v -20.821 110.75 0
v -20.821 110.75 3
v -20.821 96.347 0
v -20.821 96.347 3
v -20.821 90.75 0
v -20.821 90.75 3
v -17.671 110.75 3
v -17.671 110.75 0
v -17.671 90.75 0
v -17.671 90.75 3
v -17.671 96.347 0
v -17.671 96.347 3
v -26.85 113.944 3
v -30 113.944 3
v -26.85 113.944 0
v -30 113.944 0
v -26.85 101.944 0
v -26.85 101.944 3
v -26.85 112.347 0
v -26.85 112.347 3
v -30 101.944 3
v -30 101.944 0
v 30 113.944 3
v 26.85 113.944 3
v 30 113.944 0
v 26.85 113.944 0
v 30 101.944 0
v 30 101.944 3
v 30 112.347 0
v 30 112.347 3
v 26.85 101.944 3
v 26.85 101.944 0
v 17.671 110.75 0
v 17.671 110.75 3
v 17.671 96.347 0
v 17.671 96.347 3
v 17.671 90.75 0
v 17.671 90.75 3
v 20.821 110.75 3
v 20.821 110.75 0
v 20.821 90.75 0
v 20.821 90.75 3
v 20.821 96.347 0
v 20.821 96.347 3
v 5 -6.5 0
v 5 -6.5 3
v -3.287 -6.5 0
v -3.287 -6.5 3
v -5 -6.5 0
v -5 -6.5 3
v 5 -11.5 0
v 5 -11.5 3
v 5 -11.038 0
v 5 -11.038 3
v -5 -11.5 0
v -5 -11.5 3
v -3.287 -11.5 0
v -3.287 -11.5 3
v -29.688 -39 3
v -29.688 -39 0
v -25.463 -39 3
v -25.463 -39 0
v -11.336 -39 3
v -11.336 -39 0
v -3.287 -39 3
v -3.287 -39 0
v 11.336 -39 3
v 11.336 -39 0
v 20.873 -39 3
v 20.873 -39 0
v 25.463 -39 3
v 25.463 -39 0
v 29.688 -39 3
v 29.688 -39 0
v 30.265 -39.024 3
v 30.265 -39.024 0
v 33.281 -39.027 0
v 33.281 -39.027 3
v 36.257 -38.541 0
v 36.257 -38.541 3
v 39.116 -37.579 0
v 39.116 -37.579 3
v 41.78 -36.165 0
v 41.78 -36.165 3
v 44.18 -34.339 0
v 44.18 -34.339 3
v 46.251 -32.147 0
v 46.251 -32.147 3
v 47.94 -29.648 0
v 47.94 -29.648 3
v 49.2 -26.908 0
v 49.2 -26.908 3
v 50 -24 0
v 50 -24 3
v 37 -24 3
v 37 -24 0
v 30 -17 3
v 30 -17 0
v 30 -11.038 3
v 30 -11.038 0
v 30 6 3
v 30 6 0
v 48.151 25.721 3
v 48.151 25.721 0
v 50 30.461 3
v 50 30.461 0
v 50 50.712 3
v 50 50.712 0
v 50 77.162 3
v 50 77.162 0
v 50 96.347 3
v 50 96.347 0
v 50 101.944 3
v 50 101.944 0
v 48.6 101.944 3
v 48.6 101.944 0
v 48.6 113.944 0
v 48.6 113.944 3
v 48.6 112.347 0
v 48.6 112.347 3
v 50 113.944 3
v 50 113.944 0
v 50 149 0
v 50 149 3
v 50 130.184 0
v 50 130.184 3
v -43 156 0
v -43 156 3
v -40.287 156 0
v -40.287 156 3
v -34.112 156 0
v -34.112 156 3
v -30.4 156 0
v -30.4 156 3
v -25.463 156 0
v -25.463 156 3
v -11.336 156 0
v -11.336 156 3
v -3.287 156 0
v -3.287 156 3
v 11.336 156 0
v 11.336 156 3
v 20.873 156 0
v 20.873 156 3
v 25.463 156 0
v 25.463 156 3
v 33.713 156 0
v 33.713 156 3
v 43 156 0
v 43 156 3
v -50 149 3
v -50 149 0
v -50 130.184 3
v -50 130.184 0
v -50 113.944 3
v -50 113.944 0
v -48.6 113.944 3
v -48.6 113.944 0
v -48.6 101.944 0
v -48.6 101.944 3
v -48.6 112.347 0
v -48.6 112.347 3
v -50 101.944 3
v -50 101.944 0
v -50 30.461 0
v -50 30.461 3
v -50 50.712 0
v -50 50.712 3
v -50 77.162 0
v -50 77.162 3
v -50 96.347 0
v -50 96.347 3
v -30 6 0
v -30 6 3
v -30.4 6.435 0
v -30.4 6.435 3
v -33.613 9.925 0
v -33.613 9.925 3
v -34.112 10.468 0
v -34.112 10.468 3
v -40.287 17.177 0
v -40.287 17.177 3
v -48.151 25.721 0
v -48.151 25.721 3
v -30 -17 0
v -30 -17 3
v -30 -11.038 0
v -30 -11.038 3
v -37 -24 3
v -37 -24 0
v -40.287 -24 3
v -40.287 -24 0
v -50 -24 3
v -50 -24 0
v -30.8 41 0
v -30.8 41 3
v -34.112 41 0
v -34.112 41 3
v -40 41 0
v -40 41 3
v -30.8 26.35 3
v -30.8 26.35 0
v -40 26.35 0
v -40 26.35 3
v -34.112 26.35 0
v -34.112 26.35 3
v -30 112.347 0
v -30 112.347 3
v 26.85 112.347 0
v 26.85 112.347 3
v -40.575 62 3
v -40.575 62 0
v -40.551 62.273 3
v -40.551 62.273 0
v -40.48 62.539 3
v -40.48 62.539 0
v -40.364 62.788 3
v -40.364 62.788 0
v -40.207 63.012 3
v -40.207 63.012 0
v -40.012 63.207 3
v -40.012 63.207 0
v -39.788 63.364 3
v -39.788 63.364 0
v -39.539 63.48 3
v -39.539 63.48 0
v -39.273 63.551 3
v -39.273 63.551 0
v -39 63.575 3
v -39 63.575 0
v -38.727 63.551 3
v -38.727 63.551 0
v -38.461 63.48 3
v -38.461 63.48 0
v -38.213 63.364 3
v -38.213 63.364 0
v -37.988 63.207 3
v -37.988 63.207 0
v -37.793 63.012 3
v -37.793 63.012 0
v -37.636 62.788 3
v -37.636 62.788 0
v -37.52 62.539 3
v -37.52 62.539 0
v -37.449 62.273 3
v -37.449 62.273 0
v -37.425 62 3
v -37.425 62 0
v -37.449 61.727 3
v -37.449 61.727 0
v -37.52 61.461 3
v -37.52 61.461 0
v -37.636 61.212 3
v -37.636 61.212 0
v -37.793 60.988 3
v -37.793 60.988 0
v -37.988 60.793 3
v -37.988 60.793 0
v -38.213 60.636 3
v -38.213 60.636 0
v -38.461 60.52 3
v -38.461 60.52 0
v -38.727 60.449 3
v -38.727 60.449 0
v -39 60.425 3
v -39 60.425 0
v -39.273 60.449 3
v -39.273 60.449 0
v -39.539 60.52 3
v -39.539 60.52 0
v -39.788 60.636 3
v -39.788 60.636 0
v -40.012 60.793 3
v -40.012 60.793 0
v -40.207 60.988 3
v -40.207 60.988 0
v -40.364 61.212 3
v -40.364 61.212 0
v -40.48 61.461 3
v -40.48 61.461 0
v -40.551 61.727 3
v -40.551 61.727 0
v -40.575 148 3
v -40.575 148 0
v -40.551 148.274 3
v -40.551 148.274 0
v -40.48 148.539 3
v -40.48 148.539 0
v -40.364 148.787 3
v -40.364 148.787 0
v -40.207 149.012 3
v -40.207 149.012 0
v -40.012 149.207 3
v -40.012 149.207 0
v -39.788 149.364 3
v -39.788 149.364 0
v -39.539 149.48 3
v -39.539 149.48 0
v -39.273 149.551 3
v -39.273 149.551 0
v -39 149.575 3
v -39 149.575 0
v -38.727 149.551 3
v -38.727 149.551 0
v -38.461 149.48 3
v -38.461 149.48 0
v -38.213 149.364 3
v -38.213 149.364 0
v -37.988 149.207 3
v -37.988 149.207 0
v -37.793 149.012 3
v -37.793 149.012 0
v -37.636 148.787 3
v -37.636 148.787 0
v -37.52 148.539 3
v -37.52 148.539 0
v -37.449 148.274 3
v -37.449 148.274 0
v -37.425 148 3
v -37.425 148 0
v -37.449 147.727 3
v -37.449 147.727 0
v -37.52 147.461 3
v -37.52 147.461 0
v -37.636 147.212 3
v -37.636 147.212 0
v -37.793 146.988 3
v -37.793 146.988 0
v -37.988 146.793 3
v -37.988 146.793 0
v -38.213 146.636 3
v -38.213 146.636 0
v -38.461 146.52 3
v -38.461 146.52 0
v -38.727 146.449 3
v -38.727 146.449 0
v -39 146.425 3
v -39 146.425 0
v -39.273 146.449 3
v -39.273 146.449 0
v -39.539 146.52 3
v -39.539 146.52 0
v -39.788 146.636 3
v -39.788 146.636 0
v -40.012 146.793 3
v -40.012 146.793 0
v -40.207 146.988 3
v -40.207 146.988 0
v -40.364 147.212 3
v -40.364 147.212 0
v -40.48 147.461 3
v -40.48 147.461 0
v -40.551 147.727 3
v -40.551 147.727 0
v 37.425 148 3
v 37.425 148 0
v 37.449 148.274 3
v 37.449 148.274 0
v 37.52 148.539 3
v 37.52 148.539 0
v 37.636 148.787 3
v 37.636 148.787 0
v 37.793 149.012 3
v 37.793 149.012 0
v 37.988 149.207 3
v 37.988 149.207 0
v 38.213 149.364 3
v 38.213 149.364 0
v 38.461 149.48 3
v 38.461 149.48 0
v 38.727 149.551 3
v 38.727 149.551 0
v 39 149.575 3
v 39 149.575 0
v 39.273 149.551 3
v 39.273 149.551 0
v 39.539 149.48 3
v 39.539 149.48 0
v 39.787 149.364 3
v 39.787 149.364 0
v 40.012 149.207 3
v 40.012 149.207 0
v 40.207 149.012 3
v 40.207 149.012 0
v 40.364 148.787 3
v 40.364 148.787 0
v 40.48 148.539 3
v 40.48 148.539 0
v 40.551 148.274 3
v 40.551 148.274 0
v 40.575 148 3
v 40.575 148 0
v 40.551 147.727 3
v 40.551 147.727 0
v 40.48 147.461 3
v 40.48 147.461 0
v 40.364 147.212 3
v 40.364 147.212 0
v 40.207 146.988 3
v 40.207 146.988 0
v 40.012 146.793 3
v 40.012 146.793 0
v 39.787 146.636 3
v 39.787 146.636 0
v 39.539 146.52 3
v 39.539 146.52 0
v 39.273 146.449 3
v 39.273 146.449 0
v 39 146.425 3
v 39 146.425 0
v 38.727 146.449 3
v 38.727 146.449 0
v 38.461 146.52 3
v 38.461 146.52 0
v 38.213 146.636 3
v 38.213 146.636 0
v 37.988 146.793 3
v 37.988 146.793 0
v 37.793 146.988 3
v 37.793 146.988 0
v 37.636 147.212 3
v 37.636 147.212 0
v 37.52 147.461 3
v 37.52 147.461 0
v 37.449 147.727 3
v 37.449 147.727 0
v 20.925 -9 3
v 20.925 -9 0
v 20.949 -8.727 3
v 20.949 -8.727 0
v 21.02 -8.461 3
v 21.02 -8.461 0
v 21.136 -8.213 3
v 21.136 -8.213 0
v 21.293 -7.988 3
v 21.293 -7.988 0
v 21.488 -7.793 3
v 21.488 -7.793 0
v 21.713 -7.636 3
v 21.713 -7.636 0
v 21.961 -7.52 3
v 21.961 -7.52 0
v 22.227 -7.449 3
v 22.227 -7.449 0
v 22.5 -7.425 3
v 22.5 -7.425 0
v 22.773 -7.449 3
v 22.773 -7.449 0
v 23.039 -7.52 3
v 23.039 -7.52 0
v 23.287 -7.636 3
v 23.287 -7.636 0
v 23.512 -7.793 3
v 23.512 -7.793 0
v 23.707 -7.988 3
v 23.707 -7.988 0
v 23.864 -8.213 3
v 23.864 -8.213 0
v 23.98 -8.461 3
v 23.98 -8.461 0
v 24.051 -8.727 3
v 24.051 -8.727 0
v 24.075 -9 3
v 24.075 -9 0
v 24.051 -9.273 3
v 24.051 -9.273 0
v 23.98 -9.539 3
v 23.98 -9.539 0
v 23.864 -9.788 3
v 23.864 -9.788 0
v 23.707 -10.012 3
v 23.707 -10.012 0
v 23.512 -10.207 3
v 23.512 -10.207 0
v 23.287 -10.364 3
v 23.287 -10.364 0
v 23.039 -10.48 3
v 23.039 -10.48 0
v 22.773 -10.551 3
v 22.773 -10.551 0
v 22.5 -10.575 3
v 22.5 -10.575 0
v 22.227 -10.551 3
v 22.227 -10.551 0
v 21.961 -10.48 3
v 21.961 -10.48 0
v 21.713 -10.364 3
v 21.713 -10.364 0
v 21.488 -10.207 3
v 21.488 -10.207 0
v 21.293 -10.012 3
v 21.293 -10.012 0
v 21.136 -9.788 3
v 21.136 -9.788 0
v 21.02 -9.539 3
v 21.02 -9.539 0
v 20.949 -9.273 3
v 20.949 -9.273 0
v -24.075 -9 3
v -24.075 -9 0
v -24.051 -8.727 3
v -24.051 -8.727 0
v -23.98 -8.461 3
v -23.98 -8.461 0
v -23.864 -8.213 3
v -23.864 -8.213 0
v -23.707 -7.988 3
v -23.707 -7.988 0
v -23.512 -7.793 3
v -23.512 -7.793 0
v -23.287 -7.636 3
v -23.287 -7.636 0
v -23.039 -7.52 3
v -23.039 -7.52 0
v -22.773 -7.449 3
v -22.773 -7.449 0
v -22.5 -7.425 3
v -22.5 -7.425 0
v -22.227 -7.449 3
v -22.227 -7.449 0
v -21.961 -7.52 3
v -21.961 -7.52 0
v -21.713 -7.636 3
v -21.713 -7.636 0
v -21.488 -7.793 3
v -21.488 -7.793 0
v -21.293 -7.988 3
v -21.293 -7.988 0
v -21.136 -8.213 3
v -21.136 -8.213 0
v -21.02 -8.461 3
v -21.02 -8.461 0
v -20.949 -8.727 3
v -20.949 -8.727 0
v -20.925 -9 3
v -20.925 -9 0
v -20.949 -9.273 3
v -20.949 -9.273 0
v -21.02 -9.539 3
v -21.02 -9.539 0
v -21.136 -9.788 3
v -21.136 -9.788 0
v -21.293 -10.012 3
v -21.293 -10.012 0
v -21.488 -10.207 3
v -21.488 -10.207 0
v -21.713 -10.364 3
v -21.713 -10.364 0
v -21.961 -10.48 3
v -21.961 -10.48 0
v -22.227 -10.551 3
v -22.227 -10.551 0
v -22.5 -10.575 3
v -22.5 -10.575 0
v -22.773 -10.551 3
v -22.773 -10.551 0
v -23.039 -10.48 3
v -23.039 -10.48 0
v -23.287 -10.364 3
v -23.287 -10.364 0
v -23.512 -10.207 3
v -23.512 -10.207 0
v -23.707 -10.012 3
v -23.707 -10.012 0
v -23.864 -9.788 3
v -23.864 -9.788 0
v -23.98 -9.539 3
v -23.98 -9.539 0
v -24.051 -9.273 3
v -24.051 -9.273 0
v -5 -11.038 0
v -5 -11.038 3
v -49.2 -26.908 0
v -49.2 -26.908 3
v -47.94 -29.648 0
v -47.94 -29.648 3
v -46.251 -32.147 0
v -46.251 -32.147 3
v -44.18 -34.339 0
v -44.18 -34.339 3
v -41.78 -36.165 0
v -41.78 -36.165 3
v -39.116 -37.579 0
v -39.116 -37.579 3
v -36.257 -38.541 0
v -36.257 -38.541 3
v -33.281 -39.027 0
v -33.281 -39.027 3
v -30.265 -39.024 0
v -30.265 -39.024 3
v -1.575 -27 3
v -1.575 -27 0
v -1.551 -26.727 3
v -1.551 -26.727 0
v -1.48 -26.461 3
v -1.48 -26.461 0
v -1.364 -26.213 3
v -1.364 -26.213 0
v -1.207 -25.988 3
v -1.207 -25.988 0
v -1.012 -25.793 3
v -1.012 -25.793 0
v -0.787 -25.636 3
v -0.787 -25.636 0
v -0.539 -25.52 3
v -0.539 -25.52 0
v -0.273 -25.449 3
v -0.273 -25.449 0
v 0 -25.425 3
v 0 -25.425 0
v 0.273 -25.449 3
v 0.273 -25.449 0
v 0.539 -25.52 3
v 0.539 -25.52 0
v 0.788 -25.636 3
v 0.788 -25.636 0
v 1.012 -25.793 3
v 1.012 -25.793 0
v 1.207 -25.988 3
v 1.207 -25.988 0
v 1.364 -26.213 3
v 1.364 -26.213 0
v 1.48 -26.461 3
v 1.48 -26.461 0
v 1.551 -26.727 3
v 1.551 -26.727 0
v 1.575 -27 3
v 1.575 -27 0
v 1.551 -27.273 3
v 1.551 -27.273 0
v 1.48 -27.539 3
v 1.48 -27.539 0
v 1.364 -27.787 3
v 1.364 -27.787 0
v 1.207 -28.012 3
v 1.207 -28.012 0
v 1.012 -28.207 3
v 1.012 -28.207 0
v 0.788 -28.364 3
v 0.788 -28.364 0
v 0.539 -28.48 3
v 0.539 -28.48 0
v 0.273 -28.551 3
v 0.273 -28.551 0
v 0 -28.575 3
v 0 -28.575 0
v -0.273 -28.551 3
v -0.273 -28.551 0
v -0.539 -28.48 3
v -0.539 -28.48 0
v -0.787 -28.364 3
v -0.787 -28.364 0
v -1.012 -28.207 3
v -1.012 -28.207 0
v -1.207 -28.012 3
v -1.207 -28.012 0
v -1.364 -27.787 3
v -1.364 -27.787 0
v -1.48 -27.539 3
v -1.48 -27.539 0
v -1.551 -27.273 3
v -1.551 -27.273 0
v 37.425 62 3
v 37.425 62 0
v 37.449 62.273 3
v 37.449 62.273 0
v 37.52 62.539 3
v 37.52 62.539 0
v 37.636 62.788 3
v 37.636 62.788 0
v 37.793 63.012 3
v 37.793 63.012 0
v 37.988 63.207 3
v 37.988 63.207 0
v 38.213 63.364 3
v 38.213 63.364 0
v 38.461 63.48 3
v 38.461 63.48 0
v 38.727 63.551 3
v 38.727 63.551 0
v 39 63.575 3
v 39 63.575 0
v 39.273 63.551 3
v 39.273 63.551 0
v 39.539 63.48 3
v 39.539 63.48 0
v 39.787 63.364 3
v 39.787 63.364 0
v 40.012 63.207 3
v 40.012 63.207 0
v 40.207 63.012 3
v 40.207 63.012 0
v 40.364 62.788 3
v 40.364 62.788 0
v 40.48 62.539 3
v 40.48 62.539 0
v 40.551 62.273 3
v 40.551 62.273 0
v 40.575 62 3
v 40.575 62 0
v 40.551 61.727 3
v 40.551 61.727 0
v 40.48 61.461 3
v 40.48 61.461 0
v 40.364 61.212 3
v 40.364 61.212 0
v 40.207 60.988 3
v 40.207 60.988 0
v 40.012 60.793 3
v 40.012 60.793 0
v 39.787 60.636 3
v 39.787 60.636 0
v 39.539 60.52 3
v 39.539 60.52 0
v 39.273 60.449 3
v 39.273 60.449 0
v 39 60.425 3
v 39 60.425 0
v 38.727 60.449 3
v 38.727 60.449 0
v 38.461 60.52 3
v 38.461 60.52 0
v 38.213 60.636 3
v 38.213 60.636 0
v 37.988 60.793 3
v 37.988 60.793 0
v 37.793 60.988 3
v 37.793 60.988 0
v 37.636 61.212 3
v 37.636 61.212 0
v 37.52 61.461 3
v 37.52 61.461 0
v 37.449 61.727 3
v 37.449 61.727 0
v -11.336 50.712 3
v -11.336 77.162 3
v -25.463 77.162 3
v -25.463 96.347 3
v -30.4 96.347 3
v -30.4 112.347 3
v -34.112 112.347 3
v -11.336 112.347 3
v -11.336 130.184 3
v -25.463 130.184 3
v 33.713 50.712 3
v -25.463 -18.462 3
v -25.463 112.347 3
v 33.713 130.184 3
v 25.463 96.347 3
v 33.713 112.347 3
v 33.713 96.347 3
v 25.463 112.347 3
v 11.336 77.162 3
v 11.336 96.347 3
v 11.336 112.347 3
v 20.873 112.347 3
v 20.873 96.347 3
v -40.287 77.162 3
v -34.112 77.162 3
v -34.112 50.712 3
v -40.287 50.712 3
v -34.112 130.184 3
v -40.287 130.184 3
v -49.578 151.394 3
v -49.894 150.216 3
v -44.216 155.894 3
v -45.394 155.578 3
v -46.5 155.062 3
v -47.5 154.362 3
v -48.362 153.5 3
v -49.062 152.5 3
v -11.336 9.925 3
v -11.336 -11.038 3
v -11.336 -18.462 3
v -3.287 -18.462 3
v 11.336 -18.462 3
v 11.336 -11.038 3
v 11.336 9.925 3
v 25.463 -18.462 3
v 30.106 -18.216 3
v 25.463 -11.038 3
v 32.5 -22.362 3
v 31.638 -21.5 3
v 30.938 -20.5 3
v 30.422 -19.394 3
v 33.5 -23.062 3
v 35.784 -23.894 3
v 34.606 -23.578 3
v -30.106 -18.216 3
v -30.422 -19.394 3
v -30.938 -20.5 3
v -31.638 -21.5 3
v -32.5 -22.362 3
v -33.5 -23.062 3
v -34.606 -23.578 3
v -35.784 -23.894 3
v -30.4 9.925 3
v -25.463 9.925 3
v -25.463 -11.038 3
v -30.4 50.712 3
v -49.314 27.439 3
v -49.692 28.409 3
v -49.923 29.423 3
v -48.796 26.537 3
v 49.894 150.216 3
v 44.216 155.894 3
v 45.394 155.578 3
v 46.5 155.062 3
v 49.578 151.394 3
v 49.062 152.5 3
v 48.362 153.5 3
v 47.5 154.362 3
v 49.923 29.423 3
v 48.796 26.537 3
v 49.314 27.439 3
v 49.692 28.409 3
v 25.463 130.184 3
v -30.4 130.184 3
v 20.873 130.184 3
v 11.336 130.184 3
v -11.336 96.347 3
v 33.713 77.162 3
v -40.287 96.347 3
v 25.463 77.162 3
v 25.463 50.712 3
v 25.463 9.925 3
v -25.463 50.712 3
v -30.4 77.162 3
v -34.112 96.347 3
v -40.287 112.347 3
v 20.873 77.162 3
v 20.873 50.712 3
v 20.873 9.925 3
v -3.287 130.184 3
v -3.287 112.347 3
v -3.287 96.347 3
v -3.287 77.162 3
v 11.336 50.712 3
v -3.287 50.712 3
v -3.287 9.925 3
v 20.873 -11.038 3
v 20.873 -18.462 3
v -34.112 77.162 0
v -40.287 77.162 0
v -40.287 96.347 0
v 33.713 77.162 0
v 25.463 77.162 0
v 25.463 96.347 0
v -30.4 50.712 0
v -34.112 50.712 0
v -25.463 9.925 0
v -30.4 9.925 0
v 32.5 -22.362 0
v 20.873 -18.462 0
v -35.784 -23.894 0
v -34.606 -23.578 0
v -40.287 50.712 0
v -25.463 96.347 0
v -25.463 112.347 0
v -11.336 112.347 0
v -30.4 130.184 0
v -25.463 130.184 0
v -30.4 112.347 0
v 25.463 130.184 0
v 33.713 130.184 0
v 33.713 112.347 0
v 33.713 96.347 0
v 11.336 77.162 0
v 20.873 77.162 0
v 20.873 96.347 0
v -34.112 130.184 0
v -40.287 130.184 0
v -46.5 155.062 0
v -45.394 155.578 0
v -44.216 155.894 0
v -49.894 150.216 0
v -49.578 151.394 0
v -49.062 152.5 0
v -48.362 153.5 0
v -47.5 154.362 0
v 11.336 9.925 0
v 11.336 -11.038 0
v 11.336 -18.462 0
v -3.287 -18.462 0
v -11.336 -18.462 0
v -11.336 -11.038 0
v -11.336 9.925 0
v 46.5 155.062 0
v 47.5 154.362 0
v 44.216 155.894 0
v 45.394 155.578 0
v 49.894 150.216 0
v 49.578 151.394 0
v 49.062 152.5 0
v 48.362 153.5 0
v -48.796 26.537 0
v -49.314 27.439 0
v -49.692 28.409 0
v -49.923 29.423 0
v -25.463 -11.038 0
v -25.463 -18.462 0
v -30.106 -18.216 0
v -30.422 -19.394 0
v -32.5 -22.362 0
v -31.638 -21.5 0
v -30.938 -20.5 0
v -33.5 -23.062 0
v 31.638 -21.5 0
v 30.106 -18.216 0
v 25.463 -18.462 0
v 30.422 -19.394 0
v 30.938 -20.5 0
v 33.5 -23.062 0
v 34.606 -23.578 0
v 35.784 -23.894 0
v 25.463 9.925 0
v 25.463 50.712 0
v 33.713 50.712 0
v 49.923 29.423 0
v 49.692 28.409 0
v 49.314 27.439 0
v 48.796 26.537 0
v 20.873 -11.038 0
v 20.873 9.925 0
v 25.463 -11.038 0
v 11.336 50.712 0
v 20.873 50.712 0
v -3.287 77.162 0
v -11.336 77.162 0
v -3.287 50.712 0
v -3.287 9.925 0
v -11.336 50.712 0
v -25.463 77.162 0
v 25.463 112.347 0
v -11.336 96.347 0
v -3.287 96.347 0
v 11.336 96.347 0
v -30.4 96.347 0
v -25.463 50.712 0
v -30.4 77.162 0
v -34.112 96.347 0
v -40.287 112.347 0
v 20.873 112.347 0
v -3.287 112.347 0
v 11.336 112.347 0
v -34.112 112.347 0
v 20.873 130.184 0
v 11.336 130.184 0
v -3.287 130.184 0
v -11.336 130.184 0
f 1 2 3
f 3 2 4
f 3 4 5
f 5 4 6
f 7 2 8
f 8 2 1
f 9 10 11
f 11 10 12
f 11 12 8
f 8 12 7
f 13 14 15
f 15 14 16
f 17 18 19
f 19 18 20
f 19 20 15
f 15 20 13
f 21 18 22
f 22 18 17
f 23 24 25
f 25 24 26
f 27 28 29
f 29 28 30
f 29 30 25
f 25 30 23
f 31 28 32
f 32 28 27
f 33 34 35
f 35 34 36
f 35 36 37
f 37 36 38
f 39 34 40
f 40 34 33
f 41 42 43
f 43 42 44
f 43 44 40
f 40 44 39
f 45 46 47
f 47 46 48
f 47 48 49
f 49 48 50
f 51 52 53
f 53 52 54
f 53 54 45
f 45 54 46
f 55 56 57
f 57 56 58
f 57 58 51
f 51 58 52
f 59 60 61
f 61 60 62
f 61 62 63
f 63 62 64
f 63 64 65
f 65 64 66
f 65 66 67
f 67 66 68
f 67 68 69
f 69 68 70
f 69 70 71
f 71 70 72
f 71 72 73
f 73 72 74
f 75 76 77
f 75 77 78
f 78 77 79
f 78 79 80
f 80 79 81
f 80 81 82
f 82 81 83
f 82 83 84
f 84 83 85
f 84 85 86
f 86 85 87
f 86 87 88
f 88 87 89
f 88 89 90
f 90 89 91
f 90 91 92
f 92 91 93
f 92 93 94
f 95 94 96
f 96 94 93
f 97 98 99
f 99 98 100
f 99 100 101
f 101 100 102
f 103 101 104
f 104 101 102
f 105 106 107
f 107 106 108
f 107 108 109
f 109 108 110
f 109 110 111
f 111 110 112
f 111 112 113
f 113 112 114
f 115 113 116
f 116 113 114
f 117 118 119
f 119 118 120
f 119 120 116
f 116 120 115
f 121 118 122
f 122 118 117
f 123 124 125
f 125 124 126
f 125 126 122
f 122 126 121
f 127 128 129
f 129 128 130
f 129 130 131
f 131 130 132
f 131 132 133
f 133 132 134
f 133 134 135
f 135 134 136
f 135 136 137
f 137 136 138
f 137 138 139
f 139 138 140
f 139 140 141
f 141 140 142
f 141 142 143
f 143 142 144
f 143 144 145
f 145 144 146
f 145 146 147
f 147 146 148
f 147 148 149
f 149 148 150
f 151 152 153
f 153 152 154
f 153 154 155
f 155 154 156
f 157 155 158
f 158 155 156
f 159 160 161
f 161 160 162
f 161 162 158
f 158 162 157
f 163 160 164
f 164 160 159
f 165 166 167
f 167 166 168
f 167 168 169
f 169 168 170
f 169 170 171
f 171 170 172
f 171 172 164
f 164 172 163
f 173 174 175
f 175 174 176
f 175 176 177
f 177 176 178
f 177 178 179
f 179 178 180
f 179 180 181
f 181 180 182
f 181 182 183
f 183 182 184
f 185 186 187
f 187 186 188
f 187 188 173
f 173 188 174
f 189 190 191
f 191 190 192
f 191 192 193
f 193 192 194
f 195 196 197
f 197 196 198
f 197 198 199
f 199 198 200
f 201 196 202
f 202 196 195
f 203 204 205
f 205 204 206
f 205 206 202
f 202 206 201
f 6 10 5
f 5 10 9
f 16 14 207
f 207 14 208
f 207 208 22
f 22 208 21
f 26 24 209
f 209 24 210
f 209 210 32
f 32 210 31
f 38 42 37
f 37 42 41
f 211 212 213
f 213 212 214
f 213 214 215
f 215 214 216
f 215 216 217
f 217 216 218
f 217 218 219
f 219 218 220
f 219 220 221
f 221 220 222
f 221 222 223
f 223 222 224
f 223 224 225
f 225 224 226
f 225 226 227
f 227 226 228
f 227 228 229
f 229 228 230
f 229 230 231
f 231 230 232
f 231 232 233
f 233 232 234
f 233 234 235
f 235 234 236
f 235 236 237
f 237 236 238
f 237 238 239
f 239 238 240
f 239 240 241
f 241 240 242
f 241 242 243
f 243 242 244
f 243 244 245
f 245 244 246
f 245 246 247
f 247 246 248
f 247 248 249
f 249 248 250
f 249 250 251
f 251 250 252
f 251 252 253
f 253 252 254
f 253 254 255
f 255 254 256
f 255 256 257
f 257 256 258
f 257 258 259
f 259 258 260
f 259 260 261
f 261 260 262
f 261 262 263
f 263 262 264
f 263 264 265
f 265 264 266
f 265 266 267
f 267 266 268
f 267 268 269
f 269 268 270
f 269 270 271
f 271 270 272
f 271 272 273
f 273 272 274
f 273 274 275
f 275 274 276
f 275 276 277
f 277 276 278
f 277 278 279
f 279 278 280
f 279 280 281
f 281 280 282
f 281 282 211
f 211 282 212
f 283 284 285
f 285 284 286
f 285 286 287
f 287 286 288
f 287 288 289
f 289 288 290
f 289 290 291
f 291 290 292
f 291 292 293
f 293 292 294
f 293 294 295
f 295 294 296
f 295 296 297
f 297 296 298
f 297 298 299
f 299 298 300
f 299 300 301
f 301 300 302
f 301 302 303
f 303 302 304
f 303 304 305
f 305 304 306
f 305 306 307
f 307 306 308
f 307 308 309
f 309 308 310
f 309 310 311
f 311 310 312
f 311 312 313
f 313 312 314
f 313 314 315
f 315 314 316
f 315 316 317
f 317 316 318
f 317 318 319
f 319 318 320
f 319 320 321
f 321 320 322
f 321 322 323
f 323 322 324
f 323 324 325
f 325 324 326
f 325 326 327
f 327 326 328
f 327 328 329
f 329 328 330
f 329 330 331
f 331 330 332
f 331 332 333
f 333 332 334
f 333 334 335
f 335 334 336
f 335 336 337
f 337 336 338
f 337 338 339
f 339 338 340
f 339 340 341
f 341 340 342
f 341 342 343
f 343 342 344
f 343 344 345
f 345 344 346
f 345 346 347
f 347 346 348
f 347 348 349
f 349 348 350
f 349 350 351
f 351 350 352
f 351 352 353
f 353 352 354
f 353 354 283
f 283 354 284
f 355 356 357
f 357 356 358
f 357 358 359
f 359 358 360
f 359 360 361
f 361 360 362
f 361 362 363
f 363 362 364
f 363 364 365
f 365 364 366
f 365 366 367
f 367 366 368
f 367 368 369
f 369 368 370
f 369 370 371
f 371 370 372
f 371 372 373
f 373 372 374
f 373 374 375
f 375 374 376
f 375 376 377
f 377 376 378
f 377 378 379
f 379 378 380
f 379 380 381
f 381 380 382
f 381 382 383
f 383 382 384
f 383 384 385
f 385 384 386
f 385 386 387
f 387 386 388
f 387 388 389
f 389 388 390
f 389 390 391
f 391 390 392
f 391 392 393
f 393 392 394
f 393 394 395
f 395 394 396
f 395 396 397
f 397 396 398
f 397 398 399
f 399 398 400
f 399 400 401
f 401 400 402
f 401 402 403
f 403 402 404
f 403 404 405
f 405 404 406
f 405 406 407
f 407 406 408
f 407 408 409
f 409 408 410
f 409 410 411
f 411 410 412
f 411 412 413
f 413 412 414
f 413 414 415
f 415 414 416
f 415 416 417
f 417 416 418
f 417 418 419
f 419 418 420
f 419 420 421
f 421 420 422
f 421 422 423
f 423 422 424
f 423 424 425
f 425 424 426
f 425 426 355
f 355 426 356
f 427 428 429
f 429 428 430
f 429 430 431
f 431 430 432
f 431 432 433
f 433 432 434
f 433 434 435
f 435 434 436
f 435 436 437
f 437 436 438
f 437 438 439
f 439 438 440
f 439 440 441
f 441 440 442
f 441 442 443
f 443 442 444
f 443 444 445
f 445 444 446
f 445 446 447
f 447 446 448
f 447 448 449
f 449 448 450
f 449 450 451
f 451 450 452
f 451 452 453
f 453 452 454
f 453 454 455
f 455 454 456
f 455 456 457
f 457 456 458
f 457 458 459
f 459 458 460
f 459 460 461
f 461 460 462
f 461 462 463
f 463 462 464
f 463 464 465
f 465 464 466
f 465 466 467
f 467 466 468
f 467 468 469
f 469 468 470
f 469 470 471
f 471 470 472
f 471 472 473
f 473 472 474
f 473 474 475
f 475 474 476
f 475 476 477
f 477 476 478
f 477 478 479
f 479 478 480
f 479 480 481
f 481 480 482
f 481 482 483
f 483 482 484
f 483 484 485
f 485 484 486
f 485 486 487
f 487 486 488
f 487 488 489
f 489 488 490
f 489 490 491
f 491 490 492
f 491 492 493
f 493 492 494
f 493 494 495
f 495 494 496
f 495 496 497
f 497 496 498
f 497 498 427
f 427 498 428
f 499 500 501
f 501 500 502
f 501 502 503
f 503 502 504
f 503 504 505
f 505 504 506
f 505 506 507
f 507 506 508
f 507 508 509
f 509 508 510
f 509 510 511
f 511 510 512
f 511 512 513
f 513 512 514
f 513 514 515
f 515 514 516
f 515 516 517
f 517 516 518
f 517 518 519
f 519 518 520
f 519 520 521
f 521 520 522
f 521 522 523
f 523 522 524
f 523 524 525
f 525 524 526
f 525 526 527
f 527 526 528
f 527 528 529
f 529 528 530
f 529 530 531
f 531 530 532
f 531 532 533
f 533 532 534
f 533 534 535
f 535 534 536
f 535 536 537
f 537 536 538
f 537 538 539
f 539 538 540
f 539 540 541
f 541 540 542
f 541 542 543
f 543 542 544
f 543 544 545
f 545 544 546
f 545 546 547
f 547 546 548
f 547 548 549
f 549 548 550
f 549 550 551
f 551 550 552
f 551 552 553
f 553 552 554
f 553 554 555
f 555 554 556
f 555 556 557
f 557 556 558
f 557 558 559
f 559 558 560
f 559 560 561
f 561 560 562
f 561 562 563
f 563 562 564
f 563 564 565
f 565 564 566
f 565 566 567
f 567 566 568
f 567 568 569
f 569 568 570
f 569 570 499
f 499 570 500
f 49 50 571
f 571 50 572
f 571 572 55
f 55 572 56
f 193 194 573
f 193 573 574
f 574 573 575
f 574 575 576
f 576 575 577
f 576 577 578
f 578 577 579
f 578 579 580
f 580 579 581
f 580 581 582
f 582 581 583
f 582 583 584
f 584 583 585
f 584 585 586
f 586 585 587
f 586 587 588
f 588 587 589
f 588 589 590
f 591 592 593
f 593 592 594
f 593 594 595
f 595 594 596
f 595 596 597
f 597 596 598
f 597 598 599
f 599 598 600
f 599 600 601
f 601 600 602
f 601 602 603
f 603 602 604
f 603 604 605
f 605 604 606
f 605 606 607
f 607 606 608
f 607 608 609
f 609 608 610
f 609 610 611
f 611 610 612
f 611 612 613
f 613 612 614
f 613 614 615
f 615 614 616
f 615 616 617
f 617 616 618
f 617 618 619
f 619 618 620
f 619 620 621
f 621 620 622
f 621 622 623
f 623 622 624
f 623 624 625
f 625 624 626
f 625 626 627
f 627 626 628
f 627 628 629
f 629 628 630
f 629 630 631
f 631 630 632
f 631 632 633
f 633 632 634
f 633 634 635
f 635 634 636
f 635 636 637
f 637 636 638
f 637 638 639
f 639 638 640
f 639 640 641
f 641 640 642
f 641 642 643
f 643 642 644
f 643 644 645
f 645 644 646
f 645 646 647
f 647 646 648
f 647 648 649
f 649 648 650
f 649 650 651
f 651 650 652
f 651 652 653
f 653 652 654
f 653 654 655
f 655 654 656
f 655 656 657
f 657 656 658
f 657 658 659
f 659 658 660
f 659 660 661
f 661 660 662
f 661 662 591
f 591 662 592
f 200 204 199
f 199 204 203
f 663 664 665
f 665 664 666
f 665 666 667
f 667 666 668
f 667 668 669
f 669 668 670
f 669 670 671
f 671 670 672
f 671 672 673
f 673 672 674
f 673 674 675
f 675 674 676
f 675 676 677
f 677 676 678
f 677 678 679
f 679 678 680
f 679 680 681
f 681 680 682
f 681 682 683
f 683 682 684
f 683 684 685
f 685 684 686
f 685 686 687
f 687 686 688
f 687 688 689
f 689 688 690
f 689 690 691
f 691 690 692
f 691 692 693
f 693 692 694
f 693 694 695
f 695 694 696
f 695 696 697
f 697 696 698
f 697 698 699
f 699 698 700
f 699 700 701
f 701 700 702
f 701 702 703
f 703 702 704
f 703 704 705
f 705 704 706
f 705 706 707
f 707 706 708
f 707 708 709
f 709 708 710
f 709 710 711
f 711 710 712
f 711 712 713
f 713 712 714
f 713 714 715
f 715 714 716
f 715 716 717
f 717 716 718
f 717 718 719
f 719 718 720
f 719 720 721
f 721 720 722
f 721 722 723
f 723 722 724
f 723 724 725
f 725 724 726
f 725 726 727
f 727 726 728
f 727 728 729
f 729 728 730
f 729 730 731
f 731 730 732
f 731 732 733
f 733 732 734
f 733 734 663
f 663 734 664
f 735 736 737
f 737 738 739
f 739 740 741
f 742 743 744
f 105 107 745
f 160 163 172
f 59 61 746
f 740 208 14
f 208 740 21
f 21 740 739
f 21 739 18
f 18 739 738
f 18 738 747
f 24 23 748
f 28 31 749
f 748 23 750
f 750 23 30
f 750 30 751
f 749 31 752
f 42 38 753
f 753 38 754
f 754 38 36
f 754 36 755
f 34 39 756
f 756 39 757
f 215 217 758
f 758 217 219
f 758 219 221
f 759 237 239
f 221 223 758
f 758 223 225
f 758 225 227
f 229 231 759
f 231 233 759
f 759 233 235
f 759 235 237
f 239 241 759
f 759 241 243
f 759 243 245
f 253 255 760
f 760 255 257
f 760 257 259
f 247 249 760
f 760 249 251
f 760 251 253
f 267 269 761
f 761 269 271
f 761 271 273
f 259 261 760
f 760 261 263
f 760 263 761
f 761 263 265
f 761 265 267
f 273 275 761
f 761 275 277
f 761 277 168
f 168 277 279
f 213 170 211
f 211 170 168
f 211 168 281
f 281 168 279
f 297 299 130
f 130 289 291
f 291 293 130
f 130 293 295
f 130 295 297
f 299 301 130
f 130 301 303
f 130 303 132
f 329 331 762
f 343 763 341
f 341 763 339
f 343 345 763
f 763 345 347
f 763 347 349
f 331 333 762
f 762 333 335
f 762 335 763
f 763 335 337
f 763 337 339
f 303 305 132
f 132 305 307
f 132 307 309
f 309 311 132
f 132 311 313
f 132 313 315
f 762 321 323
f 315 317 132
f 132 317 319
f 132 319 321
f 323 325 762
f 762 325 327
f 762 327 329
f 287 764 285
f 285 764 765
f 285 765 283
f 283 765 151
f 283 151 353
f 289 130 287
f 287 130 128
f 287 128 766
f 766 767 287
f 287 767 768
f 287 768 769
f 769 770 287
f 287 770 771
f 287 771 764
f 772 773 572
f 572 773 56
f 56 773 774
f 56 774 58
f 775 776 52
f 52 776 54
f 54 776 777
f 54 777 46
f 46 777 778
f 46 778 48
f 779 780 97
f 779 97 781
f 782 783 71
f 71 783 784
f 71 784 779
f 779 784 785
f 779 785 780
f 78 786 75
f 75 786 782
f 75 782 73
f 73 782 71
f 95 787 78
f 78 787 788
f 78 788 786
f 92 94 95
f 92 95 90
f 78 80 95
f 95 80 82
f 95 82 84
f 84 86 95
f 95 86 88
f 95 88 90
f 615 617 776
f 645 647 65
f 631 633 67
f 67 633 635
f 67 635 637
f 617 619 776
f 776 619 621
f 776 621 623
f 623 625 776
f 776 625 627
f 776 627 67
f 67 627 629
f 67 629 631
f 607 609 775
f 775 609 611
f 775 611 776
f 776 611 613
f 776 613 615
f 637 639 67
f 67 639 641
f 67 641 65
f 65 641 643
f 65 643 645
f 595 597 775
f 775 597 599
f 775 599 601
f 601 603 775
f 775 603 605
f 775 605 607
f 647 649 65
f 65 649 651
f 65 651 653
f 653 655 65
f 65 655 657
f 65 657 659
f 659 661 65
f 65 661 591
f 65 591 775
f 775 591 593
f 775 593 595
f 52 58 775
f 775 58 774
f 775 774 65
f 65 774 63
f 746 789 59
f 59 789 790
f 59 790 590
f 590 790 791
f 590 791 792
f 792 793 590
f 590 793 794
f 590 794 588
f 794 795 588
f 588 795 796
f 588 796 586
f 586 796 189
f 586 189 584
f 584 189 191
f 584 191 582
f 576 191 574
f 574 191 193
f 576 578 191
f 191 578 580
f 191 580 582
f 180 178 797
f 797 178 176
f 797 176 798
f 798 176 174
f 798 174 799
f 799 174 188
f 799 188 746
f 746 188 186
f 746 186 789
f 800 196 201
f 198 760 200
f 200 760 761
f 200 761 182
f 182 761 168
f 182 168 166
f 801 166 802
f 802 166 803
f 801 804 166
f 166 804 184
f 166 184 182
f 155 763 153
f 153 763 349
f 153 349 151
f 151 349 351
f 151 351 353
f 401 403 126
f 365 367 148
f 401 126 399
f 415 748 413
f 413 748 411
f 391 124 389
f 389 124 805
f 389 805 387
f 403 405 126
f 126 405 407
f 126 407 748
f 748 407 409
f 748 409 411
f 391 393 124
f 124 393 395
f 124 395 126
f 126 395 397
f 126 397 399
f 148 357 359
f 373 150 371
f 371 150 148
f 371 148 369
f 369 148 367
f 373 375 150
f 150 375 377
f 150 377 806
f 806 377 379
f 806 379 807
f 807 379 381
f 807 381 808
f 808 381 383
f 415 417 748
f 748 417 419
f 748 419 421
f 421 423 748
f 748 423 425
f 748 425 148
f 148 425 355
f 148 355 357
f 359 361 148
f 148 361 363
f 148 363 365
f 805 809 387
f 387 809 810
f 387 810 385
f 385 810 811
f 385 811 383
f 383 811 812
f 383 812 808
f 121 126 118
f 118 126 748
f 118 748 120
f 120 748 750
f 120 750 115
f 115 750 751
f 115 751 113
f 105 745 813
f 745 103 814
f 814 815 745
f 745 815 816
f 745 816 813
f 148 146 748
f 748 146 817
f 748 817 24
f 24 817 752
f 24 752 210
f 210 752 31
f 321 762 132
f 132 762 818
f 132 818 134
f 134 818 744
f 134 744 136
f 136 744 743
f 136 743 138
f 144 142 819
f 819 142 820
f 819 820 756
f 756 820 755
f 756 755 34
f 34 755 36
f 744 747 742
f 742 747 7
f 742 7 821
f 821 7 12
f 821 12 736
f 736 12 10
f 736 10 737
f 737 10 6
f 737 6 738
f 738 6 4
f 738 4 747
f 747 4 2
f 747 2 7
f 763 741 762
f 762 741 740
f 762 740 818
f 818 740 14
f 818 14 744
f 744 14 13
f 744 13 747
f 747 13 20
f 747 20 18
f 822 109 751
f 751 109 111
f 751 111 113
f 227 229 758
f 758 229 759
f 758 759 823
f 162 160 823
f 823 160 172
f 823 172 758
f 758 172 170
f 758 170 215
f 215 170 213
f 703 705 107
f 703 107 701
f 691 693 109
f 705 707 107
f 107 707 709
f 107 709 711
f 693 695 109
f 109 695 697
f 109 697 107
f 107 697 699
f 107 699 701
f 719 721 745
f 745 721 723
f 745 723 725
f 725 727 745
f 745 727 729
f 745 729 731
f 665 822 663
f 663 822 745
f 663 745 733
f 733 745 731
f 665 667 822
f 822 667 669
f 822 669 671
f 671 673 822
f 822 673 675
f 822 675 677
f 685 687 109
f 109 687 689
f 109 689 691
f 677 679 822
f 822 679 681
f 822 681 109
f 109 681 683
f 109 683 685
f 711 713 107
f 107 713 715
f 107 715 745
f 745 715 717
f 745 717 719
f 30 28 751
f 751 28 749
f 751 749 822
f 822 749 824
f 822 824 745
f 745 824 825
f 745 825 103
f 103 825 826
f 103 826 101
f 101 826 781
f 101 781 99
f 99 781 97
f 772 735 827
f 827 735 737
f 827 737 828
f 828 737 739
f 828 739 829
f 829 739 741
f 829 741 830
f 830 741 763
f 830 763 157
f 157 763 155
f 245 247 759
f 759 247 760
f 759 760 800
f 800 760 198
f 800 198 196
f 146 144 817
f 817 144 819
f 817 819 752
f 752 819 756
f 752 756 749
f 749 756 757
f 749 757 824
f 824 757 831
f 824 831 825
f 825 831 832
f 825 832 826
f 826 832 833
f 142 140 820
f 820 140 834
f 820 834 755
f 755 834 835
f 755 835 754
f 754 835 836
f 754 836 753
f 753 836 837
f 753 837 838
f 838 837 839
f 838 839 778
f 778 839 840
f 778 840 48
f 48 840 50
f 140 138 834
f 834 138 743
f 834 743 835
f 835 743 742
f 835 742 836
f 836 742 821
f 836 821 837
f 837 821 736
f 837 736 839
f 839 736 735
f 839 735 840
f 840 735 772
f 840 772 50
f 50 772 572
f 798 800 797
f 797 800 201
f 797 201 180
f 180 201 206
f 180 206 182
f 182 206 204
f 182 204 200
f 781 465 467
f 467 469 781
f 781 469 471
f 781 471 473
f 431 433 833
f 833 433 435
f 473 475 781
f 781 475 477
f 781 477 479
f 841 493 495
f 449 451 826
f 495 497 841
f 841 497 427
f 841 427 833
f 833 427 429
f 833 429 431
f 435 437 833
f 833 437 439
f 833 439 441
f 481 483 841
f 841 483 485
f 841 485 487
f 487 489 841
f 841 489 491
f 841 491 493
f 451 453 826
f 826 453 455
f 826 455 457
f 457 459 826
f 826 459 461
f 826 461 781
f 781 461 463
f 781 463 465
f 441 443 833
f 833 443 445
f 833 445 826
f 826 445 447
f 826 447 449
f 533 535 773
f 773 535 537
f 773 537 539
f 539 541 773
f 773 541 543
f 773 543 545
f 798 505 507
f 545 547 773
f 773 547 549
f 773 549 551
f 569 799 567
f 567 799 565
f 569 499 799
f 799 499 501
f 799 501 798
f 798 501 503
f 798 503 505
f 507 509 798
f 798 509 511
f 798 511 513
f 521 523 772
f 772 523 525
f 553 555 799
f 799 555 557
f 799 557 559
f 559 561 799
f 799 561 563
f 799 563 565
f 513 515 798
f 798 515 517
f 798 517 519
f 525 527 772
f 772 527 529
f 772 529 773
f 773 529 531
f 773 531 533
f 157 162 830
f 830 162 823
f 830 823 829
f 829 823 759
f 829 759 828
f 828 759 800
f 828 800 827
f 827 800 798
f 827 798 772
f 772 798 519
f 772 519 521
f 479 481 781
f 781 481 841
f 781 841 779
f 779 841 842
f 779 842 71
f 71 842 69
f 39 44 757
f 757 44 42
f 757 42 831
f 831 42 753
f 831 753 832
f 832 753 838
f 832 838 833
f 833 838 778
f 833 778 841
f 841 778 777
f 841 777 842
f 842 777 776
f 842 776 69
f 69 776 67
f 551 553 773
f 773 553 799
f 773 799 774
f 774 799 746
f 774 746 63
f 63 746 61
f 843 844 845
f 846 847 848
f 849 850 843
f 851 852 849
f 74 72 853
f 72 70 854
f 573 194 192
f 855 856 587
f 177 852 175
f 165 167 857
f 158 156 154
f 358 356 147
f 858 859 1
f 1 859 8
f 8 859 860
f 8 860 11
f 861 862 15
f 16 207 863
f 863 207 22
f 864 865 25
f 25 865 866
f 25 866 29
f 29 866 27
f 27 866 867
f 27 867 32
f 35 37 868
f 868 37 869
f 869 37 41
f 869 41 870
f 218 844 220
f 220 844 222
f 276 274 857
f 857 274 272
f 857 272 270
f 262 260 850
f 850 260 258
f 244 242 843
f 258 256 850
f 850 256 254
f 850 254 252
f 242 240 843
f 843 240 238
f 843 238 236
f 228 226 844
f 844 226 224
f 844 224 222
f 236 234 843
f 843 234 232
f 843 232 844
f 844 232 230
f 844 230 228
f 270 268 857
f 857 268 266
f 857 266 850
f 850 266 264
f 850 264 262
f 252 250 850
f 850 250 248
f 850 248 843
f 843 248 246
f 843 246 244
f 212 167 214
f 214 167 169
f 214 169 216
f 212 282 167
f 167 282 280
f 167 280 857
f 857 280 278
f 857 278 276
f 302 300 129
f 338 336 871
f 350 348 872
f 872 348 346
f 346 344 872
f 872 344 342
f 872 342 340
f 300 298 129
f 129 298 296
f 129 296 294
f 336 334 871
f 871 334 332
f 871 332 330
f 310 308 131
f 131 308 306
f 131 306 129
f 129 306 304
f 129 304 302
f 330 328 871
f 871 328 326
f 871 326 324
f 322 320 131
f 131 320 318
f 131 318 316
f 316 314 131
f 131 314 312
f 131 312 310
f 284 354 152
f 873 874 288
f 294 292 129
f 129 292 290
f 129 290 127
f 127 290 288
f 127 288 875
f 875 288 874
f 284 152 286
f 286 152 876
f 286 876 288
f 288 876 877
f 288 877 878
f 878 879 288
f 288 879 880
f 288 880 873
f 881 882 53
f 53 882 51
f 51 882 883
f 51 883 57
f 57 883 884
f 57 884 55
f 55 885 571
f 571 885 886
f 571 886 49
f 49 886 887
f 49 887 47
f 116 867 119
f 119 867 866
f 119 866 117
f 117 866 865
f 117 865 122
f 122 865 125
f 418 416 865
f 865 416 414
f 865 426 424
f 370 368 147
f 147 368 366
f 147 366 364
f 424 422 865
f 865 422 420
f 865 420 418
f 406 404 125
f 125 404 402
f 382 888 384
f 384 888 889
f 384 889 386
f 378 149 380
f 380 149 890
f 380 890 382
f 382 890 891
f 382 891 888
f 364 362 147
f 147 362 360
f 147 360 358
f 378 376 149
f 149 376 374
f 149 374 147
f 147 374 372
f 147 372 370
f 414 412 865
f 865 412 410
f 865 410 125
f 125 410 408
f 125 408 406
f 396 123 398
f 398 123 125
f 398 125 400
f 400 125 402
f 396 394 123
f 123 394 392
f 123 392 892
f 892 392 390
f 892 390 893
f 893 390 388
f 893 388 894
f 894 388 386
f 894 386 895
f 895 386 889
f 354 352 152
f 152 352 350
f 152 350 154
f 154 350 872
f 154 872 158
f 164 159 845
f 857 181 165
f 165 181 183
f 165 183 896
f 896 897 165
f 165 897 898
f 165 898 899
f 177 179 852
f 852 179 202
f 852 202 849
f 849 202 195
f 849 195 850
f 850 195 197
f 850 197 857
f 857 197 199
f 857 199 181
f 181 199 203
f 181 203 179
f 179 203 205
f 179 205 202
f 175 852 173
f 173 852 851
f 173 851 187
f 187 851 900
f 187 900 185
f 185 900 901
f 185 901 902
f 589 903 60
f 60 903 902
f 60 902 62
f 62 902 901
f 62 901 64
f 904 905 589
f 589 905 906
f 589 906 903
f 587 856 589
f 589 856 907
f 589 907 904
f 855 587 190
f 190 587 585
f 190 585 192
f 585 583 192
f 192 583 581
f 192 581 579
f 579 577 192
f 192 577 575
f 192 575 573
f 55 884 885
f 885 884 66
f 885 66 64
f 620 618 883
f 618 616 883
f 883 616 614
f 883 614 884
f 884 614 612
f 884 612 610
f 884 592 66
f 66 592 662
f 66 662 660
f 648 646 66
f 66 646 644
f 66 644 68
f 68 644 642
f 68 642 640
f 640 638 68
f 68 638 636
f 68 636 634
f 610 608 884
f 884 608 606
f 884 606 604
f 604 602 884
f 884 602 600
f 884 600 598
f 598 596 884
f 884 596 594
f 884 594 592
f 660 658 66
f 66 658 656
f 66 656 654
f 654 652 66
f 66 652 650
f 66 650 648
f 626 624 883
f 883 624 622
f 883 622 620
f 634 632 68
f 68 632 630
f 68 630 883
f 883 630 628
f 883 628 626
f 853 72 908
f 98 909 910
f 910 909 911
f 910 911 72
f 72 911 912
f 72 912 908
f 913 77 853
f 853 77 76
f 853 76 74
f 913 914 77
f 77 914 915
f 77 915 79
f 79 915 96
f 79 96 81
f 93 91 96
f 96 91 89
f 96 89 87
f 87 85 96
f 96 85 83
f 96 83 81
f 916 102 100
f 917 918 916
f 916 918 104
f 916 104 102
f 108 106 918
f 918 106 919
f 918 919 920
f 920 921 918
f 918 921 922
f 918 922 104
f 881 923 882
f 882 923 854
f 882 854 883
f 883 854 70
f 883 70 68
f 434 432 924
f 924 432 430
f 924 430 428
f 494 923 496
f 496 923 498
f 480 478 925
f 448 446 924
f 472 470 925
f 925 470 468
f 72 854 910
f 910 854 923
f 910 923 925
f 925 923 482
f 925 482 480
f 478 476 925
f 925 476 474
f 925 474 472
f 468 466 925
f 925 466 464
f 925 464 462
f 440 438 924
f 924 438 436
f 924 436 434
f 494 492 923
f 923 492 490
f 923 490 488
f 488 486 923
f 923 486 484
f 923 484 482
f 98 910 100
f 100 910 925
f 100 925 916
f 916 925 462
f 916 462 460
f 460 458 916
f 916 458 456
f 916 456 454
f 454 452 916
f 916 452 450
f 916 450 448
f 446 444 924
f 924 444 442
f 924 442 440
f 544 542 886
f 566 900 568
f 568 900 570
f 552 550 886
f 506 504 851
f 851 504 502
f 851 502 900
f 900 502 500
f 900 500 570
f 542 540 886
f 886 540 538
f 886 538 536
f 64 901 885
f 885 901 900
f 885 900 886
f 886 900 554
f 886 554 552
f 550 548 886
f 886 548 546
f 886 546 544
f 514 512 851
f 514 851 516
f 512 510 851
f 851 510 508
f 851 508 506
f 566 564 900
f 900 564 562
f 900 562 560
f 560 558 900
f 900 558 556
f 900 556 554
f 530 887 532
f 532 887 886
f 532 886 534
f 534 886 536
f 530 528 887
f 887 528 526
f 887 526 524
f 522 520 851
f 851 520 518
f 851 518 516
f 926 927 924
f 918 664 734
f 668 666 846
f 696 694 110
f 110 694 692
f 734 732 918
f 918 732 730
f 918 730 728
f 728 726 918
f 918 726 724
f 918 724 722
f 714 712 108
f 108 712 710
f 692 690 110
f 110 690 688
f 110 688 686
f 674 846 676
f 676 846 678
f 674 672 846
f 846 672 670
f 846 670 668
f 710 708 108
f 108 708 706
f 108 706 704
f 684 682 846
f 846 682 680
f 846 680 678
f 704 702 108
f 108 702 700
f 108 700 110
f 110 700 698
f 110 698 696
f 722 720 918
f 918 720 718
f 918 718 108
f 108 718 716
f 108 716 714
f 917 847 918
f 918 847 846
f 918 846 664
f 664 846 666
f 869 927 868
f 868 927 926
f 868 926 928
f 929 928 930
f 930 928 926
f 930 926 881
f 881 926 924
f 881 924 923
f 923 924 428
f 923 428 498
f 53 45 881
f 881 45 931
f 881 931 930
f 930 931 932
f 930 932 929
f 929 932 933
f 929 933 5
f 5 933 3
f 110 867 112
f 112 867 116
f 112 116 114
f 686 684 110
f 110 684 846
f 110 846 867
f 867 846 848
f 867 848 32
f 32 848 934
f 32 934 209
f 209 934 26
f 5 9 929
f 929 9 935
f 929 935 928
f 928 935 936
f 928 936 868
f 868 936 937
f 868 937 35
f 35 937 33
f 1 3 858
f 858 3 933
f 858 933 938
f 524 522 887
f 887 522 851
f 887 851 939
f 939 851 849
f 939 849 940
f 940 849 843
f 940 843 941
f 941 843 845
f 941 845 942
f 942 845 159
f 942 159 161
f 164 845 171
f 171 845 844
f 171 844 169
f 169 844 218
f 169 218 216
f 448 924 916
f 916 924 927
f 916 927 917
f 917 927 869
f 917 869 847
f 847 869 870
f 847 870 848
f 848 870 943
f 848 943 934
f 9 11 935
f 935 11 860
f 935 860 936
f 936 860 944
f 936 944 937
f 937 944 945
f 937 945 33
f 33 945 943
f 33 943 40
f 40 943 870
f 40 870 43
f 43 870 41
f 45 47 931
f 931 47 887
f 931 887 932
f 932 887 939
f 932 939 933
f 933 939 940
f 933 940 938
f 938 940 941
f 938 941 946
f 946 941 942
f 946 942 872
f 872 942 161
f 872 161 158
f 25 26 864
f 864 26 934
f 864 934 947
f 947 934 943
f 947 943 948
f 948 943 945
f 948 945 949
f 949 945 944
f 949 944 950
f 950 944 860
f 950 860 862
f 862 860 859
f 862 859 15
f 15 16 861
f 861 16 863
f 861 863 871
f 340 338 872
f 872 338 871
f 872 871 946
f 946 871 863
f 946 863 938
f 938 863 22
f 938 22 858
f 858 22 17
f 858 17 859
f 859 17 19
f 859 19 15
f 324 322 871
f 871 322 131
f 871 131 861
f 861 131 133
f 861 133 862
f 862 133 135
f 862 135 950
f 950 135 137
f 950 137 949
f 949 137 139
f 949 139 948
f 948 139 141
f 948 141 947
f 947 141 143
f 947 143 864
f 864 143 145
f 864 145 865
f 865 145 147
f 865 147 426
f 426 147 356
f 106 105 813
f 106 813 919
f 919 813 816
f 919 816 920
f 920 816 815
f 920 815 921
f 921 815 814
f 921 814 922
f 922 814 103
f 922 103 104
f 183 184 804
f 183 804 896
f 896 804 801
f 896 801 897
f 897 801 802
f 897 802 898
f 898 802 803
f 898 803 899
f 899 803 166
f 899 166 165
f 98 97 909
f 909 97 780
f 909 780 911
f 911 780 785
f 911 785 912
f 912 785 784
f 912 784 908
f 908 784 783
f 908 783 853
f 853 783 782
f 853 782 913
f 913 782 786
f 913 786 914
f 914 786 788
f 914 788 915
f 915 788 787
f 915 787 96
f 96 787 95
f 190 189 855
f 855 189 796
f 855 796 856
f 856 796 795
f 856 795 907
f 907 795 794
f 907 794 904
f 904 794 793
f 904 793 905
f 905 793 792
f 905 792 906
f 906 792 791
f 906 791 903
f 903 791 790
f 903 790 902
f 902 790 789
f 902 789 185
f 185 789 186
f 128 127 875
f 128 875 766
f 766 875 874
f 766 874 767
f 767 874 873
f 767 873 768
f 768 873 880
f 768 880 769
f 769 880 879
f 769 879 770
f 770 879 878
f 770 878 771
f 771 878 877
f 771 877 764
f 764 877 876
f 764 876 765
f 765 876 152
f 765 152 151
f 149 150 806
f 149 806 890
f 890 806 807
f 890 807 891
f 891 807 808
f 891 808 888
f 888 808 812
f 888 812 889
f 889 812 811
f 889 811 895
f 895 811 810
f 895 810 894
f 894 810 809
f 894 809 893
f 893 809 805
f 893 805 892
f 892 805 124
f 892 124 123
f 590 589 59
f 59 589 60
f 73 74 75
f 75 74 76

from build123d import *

# Parameters (mm, degrees)
SKETCH1_W           = 9.2
SKETCH1_H           = 14.65
SKETCH1_R           = 1.575
SKETCH1_W_2         = 10
SKETCH1_H_2         = 5
SKETCH1_W_3         = 3.15
SKETCH1_H_3         = 20
SKETCH1_H_4         = 12
BOSS_EXTRUDE2_DEPTH = 3
FILLET1_R           = 7


with BuildPart() as part:
    # Sketch1 → Boss-Extrude2 (new body)
    with BuildSketch(Plane.XY):
        with BuildLine():
            Line((-30, -39), (30, -39))
            ThreePointArc((30, -39), (42.910893348, -35.38119113), (50, -24))
            Line((50, -24), (30, -24))
            Line((30, -24), (30, 6))
            Line((30, 6), (50, 27.730066792))
            Line((50, 27.730066792), (50, 101.943914812))
            Line((50, 101.943914812), (48.6, 101.943914812))
            Line((48.6, 101.943914812), (48.6, 113.943914812))
            Line((48.6, 113.943914812), (50, 113.943914812))
            Line((50, 113.943914812), (50, 156))
            Line((50, 156), (-50, 156))
            Line((-50, 156), (-50, 113.943914812))
            Line((-50, 113.943914812), (-48.6, 113.943914812))
            Line((-48.6, 113.943914812), (-48.6, 101.943914812))
            Line((-48.6, 101.943914812), (-50, 101.943914812))
            Line((-50, 101.943914812), (-50, 27.730066792))
            Line((-50, 27.730066792), (-30, 6))
            Line((-30, 6), (-30, -24))
            Line((-30, -24), (-50, -24))
            ThreePointArc((-50, -24), (-42.910893348, -35.38119113), (-30, -39))
        make_face()
        with Locations((-35.4, 33.675)):
            Rectangle(SKETCH1_W, SKETCH1_H, mode=Mode.SUBTRACT)
        with Locations((0, -27)):
            Circle(SKETCH1_R, mode=Mode.SUBTRACT)
        with Locations((22.5, -9)):
            Circle(SKETCH1_R, mode=Mode.SUBTRACT)
        with Locations((-22.5, -9)):
            Circle(SKETCH1_R, mode=Mode.SUBTRACT)
        with Locations((0, -9)):
            Rectangle(SKETCH1_W_2, SKETCH1_H_2, mode=Mode.SUBTRACT)
        with Locations((39, 148)):
            Circle(SKETCH1_R, mode=Mode.SUBTRACT)
        with Locations((-39, 62)):
            Circle(SKETCH1_R, mode=Mode.SUBTRACT)
        with Locations((-19.246461744, 100.75)):
            Rectangle(SKETCH1_W_3, SKETCH1_H_3, mode=Mode.SUBTRACT)
        with Locations((-28.425, 107.943914812)):
            Rectangle(SKETCH1_W_3, SKETCH1_H_4, mode=Mode.SUBTRACT)
        with Locations((-39, 148)):
            Circle(SKETCH1_R, mode=Mode.SUBTRACT)
        with Locations((19.246461744, 100.75)):
            Rectangle(SKETCH1_W_3, SKETCH1_H_3, mode=Mode.SUBTRACT)
        with Locations((39, 62)):
            Circle(SKETCH1_R, mode=Mode.SUBTRACT)
        with Locations((28.425, 107.943914812)):
            Rectangle(SKETCH1_W_3, SKETCH1_H_4, mode=Mode.SUBTRACT)
    extrude(amount=BOSS_EXTRUDE2_DEPTH)

    # Fillet1
    # the kernel refuses this fillet: 7 mm, written as the material it adds along each edge
    with BuildSketch(Plane(origin=(-30, -39, 0), x_dir=(1, 0, 0), z_dir=(0, 0, 1))) as fillet1_piece_1:
        with BuildLine():
            CenterArc((0.312366932, -7), FILLET1_R, 90, 4.731570596)
            ThreePointArc((-0.265046647, -0.023855394), (-0.132480496, -0.012403535), (0, 0))
            Line((0, 0), (0.312366932, 0))
        make_face()
    extrude(amount=3)
    with BuildSketch(Plane(origin=(-30, -24, 0), x_dir=(0, 1, 0), z_dir=(0, 0, 1)), Plane(origin=(30, -24, 0), x_dir=(1, 0, 0), z_dir=(0, 0, 1))) as fillet1_piece_2:
        with BuildLine():
            CenterArc((FILLET1_R, FILLET1_R), FILLET1_R, 180, 90)
            Line((0, FILLET1_R), (0, 0))
            Line((0, 0), (FILLET1_R, 0))
        make_face()
    extrude(amount=3)
    with BuildSketch(Plane(origin=(30, -39, 0), x_dir=(-1, 0, 0), z_dir=(0, 0, 1))) as fillet1_piece_3:
        with BuildLine():
            CenterArc((0.312366932, 7), FILLET1_R, 265.268429404, 4.731570596)
            ThreePointArc((-0.265046647, 0.023855394), (-0.132480496, 0.012403535), (0, 0))
            Line((0, 0), (0.312366932, 0))
        make_face()
    extrude(amount=3)
    # the kernel refuses this fillet: 7 mm, written as the material it takes off along each edge
    with BuildSketch(Plane(origin=(-50, 27.730066792, -6.827532689), x_dir=(0, 1, 0), z_dir=(0, 0, 1)), Plane(origin=(50, 27.730066792, -6.827532689), x_dir=(-0.6772094339211744, -0.7357903115753581, 0), z_dir=(0, 0, 1))) as fillet1_2_piece_1:
        with BuildLine():
            CenterArc((FILLET1_R * 0.390144725089, -FILLET1_R), FILLET1_R, 90, 42.625961352)
            Line((-FILLET1_R * 0.287064708832, -FILLET1_R * 0.264209688425), (0, 0))
            Line((0, 0), (FILLET1_R * 0.390144725089, 0))
        make_face()
    extrude(amount=16.655065378, mode=Mode.SUBTRACT)
    with BuildSketch(Plane(origin=(-50, 156, -17.5), x_dir=(1, 0, 0), z_dir=(0, 0, 1)), Plane(origin=(50, 156, -17.5), x_dir=(0, -1, 0), z_dir=(0, 0, 1))) as fillet1_2_piece_2:
        with BuildLine():
            CenterArc((FILLET1_R, -FILLET1_R), FILLET1_R, 90, 90)
            Line((0, -FILLET1_R), (0, 0))
            Line((0, 0), (FILLET1_R, 0))
        make_face()
    extrude(amount=38, mode=Mode.SUBTRACT)


solid = part.part
